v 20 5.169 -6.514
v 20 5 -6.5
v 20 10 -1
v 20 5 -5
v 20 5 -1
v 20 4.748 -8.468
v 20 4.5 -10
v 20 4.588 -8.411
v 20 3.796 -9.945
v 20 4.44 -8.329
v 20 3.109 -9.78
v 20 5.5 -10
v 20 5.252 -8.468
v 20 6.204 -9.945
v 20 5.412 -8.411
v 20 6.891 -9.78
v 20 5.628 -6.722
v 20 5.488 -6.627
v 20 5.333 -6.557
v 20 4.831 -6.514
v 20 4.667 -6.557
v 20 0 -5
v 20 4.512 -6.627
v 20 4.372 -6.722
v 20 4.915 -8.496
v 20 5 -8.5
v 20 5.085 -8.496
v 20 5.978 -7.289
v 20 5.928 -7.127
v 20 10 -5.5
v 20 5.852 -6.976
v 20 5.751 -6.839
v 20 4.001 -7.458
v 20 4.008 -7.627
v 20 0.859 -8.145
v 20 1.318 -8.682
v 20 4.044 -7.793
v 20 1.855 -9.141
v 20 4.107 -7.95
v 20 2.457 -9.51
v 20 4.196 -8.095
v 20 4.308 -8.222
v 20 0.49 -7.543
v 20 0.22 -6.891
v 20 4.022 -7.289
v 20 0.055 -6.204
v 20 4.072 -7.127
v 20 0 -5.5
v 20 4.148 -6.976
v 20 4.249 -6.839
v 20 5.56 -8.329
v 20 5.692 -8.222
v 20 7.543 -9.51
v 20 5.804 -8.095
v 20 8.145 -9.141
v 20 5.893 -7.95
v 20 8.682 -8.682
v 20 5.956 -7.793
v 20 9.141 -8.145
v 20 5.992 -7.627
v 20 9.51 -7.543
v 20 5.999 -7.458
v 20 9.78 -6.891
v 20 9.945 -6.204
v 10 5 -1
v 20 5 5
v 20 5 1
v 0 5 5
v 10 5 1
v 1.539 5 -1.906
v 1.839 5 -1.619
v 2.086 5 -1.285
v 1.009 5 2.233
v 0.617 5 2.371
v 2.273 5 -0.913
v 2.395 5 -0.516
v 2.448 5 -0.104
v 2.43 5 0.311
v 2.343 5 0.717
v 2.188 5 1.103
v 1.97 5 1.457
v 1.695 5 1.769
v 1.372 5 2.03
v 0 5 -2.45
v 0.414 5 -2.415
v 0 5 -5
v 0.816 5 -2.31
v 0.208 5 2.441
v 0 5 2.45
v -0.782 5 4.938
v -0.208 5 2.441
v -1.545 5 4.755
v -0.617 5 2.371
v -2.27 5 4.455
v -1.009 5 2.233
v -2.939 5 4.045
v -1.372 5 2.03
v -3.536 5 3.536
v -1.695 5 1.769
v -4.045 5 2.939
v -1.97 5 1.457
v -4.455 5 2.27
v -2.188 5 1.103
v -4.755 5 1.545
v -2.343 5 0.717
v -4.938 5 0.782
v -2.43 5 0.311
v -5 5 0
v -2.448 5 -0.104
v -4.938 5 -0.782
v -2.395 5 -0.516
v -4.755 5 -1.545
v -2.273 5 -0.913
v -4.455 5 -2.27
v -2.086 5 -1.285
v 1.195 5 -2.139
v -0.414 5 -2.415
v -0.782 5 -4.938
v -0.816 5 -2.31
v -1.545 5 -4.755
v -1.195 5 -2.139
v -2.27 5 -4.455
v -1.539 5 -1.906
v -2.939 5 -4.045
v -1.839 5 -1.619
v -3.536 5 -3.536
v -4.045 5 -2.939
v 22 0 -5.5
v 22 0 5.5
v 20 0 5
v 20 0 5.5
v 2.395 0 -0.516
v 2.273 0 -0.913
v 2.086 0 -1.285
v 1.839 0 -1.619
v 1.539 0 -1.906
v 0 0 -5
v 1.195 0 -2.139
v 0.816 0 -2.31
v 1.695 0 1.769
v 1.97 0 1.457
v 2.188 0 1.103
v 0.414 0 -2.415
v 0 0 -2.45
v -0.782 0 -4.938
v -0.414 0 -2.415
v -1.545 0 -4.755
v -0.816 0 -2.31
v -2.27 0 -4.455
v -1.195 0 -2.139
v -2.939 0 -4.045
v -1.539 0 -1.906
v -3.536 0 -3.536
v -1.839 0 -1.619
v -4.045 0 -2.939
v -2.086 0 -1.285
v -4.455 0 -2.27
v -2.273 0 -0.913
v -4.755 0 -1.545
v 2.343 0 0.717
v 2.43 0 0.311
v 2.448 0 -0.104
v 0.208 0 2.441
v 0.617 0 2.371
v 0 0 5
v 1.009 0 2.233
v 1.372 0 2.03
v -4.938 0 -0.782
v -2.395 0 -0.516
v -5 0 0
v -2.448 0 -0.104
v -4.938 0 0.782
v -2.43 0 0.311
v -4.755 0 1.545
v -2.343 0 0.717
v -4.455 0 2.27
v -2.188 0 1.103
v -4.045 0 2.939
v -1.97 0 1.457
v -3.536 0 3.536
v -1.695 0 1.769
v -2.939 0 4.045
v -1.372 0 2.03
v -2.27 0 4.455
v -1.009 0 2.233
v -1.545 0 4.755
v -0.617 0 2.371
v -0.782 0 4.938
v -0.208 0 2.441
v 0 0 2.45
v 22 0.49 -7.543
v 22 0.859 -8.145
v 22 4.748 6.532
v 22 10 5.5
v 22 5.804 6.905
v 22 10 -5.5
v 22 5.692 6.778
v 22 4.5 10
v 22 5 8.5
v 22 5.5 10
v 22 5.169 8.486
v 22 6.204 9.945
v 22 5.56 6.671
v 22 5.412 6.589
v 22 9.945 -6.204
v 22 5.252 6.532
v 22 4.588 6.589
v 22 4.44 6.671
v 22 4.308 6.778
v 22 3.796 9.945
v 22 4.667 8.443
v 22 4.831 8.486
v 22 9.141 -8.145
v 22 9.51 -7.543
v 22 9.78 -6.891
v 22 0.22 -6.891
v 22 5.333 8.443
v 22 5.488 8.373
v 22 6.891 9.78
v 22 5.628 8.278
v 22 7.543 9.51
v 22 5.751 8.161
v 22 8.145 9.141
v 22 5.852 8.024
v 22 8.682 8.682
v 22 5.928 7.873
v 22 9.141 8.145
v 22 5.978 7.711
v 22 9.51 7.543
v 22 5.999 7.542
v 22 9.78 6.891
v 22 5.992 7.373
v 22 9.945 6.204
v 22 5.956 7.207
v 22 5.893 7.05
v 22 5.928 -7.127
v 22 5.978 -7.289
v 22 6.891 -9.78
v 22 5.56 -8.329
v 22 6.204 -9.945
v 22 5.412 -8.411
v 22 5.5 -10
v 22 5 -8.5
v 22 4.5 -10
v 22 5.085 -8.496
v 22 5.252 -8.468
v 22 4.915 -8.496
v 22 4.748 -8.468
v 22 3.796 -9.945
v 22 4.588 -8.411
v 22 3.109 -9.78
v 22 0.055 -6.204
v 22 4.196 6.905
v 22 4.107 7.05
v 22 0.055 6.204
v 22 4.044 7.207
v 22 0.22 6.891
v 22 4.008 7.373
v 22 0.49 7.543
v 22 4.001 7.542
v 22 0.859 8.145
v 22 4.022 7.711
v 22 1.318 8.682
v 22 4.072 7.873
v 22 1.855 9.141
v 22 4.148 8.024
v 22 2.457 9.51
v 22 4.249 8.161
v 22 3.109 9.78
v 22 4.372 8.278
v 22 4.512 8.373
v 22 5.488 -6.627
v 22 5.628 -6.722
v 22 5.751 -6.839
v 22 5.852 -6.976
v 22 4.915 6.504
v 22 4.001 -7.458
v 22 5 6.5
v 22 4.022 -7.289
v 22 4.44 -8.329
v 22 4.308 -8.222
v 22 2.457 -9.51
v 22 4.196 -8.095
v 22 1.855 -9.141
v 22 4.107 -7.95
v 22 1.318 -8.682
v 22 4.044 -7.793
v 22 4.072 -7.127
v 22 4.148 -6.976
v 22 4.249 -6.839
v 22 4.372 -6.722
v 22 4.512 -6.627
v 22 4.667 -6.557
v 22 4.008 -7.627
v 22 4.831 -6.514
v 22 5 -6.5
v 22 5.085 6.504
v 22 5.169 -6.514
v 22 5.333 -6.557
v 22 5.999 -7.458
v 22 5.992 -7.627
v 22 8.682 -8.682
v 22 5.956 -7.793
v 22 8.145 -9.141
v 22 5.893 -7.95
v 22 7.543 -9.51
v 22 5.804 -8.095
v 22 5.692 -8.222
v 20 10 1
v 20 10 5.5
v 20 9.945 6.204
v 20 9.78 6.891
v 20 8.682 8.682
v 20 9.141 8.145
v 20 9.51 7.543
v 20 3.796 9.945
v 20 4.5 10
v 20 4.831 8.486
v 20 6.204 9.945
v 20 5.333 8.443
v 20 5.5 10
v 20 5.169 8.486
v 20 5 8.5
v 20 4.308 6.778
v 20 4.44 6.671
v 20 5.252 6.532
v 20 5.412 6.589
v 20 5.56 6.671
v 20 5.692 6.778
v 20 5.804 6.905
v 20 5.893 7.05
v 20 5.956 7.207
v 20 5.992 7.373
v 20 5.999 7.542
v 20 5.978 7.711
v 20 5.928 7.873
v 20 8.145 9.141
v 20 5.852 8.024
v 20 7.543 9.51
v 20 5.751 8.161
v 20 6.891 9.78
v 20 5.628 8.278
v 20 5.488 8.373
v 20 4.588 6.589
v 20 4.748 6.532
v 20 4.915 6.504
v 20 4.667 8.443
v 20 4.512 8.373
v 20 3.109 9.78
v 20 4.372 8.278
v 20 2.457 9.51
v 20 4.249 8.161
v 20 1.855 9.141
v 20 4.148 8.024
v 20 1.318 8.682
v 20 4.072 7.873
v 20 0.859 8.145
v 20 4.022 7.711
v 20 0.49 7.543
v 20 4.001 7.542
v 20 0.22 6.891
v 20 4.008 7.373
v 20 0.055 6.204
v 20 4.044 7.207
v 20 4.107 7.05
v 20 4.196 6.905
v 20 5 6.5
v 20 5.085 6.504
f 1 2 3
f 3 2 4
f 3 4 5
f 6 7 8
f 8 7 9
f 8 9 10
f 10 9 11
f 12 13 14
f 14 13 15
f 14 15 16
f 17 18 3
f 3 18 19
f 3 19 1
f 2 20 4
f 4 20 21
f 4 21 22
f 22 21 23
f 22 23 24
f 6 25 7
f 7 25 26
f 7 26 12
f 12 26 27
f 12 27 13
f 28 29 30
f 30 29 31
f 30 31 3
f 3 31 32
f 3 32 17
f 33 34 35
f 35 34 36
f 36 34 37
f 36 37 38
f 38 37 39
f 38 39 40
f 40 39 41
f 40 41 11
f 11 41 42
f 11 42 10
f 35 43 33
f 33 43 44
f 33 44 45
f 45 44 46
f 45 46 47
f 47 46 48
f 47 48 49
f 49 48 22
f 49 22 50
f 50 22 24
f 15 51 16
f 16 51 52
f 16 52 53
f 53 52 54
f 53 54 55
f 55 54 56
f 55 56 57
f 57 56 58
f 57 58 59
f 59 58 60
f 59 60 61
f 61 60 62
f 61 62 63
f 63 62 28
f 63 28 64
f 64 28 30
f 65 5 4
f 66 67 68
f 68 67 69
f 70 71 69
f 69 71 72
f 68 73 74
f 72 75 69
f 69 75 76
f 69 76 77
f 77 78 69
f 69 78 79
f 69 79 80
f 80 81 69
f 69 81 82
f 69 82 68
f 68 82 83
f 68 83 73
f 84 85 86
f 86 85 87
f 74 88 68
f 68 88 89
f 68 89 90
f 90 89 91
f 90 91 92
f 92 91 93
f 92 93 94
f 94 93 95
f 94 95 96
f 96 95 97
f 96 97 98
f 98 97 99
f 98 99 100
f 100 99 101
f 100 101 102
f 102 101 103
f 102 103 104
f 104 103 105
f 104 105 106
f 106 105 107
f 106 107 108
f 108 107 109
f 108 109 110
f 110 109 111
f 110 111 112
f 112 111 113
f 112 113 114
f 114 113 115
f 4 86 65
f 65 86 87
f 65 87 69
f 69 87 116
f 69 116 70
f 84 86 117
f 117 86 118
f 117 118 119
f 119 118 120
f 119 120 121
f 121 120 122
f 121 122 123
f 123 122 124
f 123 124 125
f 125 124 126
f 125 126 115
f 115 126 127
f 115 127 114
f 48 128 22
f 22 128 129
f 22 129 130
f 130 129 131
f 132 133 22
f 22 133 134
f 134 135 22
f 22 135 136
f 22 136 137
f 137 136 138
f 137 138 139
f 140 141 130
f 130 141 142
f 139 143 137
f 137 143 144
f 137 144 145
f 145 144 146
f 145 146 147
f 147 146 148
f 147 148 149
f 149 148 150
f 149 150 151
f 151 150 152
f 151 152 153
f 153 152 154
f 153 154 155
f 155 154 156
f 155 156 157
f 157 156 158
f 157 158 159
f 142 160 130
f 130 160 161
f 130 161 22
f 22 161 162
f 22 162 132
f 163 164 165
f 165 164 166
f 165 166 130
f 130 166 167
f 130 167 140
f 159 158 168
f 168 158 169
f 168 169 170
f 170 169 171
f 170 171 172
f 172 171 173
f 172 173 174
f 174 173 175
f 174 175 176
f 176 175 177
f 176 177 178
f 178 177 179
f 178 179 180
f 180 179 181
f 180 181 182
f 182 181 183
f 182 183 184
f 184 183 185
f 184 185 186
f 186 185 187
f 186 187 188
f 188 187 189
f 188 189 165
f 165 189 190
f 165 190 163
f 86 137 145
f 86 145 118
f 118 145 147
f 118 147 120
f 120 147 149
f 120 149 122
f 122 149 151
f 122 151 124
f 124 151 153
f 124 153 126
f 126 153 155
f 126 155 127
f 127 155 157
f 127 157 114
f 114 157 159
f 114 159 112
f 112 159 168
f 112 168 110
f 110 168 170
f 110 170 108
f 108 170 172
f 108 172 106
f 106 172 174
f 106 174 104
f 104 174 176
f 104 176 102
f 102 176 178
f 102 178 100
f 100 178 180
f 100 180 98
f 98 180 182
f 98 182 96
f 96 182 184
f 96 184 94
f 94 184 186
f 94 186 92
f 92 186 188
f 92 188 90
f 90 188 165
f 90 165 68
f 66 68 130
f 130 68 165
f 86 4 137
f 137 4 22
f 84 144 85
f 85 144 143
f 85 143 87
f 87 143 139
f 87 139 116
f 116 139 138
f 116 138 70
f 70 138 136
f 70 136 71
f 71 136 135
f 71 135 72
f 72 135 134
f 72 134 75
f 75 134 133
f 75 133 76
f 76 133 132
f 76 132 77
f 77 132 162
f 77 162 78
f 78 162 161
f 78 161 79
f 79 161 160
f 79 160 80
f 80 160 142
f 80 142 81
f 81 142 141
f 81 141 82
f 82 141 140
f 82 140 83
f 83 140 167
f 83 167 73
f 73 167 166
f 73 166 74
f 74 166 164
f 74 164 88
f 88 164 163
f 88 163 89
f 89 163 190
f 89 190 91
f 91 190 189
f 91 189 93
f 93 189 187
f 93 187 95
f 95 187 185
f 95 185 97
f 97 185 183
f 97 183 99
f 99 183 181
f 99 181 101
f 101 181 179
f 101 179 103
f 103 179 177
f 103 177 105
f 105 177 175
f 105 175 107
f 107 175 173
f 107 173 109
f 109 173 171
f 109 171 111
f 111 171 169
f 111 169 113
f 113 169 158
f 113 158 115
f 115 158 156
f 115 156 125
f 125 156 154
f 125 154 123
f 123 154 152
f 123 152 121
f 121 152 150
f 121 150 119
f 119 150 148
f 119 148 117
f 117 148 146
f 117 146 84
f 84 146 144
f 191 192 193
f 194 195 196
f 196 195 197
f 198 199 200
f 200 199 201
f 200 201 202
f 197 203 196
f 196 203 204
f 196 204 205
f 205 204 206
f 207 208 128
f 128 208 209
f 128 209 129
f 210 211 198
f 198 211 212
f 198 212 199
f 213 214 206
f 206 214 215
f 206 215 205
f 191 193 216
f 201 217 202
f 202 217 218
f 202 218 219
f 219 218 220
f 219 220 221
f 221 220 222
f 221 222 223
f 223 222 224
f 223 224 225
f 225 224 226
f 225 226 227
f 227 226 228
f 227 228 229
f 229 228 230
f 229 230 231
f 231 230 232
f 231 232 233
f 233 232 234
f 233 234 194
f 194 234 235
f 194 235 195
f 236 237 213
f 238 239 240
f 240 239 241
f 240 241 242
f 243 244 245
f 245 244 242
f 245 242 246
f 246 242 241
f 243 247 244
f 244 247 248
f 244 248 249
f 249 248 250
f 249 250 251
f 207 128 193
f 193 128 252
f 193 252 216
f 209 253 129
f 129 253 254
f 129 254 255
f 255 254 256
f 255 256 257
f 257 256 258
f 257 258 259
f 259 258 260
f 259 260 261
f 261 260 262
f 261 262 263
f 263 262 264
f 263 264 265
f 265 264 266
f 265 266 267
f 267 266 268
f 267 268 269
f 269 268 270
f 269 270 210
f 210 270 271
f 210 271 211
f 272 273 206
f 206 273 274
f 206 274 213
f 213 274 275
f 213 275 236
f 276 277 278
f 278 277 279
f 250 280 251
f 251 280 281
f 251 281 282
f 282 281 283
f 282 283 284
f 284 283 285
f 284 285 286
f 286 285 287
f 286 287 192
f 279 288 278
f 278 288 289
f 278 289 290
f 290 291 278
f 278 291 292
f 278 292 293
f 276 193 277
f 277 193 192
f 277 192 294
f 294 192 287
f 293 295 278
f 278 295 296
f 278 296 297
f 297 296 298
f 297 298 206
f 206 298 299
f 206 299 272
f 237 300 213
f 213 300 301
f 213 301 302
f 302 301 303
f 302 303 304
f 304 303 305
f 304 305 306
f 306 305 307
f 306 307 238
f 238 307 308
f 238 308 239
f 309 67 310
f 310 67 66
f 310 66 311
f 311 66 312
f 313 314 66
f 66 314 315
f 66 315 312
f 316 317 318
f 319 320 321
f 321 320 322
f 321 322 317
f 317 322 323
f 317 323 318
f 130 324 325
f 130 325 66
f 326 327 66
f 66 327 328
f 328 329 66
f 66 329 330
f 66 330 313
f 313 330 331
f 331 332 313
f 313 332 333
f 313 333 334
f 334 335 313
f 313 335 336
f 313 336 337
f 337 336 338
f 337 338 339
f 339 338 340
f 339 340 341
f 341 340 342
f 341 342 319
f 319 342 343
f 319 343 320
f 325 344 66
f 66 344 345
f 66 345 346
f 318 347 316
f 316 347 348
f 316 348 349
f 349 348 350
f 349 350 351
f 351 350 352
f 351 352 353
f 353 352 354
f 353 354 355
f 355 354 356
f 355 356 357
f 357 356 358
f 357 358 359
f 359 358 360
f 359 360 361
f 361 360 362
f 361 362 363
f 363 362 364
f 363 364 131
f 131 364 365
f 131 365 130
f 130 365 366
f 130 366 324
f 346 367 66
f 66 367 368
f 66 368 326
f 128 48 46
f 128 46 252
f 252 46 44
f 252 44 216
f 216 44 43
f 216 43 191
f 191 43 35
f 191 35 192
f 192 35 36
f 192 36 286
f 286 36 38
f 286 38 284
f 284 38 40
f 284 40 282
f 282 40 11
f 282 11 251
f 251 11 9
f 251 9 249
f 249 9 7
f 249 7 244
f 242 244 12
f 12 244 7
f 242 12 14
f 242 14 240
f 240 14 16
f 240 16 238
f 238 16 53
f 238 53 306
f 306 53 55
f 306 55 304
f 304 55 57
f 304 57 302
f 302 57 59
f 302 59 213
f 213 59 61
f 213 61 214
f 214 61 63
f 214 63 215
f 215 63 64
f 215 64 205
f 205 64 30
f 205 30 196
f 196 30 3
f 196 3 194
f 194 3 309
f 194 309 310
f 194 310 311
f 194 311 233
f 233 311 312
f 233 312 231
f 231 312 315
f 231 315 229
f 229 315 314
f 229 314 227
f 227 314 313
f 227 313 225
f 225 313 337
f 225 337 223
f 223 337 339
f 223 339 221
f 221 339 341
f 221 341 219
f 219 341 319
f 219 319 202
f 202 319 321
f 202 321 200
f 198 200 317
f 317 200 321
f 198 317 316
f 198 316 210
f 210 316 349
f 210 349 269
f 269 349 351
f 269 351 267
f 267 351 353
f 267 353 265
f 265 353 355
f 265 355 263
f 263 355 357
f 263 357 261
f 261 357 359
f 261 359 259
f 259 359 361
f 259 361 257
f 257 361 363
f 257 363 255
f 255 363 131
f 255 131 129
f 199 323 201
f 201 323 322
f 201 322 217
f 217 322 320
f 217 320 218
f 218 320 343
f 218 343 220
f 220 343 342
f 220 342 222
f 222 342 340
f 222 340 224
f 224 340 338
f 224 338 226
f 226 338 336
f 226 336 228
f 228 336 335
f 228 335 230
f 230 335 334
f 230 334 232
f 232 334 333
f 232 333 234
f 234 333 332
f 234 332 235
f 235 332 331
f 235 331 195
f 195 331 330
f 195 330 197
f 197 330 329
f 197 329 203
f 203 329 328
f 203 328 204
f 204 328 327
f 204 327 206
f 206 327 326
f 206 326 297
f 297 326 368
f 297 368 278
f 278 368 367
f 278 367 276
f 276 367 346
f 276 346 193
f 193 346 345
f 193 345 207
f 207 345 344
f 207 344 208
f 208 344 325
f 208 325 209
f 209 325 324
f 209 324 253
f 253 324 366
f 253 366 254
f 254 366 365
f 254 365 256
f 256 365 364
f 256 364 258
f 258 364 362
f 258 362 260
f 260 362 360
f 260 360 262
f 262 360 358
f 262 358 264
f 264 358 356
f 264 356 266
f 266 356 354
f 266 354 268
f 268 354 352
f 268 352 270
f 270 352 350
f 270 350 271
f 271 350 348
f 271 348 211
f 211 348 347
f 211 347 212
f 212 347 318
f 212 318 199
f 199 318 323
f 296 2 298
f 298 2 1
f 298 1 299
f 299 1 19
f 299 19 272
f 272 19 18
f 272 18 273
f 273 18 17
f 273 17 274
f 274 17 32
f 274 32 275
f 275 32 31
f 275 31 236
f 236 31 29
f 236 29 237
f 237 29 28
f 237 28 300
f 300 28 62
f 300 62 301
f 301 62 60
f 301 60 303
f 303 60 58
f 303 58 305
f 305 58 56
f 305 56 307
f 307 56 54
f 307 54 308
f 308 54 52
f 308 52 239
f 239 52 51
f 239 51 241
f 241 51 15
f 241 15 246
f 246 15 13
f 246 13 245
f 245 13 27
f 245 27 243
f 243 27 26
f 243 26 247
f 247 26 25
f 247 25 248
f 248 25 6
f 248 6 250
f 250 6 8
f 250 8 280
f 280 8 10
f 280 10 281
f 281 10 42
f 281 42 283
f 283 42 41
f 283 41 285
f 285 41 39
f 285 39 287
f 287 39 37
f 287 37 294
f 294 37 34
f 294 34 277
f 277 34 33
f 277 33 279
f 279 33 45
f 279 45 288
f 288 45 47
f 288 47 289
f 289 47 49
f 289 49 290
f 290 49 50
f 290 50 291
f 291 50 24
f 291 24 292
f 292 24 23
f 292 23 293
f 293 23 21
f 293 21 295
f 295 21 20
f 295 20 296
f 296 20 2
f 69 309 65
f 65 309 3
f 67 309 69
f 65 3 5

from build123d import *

# Parameters (mm, degrees)
SKETCH1_R           = 2.45
BOSS_EXTRUDE1_DEPTH = 5
SKETCH2_R           = 1
BOSS_EXTRUDE2_DEPTH = 2
BOSS_EXTRUDE3_DEPTH = 1


with BuildPart() as part:
    # Sketch1 → Boss-Extrude1 (new body)
    with BuildSketch(Plane(origin=(0, 0, 0), x_dir=(1, 0, 0), z_dir=(0, 1, 0))):
        with BuildLine():
            Line((0, 5), (20, 5))
            Line((20, 5), (20, -5))
            Line((20, -5), (0, -5))
            ThreePointArc((0, -5), (-5, 0), (0, 5))
        make_face()
        Circle(SKETCH1_R, mode=Mode.SUBTRACT)
    extrude(amount=BOSS_EXTRUDE1_DEPTH)

    # Sketch2 → Boss-Extrude2 (add)
    with BuildSketch(Plane(origin=(20, 0, 0), x_dir=(0, 0, -1), z_dir=(1, 0, 0))):
        with BuildLine():
            Line((-5.5, 10), (5.5, 10))
            ThreePointArc((5.5, 10), (8.681980515, 8.681980515), (10, 5.5))
            Line((10, 5.5), (10, 4.5))
            ThreePointArc((10, 4.5), (8.681980515, 1.318019485), (5.5, 0))
            Line((5.5, 0), (-5.5, 0))
            ThreePointArc((-5.5, 0), (-8.681980515, 1.318019485), (-10, 4.5))
            Line((-10, 4.5), (-10, 5.5))
            ThreePointArc((-10, 5.5), (-8.681980515, 8.681980515), (-5.5, 10))
        make_face()
        with Locations((-7.5, 5)):
            Circle(SKETCH2_R, mode=Mode.SUBTRACT)
        with Locations((7.5, 5)):
            Circle(SKETCH2_R, mode=Mode.SUBTRACT)
    extrude(amount=BOSS_EXTRUDE2_DEPTH)

    # Sketch3 → Boss-Extrude3 (add, symmetric)
    with BuildSketch(Plane.XY):
        Polygon((10, 5), (20, 10), (20, 5), align=None)
    extrude(amount=BOSS_EXTRUDE3_DEPTH, both=True)


solid = part.part
